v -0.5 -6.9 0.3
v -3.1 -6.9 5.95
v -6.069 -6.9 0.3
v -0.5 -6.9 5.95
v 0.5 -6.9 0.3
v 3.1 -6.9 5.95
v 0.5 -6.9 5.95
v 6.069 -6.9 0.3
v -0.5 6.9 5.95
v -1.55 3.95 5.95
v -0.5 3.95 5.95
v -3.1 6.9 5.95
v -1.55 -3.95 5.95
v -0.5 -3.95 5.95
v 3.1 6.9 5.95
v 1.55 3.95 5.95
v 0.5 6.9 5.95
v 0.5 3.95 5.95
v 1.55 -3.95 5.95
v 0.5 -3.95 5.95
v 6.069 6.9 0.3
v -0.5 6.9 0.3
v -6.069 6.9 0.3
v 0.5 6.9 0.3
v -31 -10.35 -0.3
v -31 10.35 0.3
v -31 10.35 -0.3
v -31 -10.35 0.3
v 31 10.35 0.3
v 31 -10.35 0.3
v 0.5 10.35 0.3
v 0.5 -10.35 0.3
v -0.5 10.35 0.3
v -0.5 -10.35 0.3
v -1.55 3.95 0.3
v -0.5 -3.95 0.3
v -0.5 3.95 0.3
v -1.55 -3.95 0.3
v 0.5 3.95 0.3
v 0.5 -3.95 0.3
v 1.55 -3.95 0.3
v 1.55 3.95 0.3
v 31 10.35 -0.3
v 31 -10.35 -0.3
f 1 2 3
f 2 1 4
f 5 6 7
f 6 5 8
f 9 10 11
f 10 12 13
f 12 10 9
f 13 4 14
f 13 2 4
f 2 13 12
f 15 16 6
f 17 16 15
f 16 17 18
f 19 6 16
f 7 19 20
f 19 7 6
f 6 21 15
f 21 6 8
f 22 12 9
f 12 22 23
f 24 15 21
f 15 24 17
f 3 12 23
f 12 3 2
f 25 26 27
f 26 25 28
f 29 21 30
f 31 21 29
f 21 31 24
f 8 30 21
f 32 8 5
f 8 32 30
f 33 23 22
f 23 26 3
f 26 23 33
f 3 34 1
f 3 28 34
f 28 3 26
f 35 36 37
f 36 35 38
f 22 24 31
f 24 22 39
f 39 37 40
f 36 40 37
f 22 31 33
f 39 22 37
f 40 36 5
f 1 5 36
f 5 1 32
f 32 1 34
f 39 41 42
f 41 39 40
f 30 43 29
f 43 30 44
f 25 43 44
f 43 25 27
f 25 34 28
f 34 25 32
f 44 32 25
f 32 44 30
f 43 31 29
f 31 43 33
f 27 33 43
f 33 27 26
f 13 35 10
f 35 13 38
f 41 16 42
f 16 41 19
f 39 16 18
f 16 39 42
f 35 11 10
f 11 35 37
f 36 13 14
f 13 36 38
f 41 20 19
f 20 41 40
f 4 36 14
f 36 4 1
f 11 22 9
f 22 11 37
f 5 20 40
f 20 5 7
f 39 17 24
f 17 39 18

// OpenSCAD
// Mill-Max 852-10-010-10-003000 probe soldering jig

tol = 0.1; // 0.1 Tight Grip

// Manual measure of Mill-Max 852-10-010-10-003000 10pin micro header
header_xmm = tol + 3;
header_ymm = tol + 6.8;
header_cup_pin_depth_mm = 4.6;
header_pin_jig_mm = 6;

// Folded IDC cable 10 pin
idc_cable_h = 6;
idc_cable_w = 2.5;

if(1)
difference()
{
  union()
  {
    hull()
    {
      cube([header_xmm*4, header_ymm*2, 0.1], center=true);
      translate([0,0,header_pin_jig_mm-0.1])
        cube([header_xmm*2, header_ymm*2, 0.1], center=true);
    }
    cube([header_xmm*20, header_ymm*3, 0.6], center=true);
  }
  
  #translate([0,0,header_pin_jig_mm/2+ 0.3])
    cube([header_xmm, header_ymm+1, header_pin_jig_mm], center=true);

  #translate([0,0,header_pin_jig_mm/2 + 0.3])
    cube([1, header_ymm*3, header_pin_jig_mm], center=true);
}
